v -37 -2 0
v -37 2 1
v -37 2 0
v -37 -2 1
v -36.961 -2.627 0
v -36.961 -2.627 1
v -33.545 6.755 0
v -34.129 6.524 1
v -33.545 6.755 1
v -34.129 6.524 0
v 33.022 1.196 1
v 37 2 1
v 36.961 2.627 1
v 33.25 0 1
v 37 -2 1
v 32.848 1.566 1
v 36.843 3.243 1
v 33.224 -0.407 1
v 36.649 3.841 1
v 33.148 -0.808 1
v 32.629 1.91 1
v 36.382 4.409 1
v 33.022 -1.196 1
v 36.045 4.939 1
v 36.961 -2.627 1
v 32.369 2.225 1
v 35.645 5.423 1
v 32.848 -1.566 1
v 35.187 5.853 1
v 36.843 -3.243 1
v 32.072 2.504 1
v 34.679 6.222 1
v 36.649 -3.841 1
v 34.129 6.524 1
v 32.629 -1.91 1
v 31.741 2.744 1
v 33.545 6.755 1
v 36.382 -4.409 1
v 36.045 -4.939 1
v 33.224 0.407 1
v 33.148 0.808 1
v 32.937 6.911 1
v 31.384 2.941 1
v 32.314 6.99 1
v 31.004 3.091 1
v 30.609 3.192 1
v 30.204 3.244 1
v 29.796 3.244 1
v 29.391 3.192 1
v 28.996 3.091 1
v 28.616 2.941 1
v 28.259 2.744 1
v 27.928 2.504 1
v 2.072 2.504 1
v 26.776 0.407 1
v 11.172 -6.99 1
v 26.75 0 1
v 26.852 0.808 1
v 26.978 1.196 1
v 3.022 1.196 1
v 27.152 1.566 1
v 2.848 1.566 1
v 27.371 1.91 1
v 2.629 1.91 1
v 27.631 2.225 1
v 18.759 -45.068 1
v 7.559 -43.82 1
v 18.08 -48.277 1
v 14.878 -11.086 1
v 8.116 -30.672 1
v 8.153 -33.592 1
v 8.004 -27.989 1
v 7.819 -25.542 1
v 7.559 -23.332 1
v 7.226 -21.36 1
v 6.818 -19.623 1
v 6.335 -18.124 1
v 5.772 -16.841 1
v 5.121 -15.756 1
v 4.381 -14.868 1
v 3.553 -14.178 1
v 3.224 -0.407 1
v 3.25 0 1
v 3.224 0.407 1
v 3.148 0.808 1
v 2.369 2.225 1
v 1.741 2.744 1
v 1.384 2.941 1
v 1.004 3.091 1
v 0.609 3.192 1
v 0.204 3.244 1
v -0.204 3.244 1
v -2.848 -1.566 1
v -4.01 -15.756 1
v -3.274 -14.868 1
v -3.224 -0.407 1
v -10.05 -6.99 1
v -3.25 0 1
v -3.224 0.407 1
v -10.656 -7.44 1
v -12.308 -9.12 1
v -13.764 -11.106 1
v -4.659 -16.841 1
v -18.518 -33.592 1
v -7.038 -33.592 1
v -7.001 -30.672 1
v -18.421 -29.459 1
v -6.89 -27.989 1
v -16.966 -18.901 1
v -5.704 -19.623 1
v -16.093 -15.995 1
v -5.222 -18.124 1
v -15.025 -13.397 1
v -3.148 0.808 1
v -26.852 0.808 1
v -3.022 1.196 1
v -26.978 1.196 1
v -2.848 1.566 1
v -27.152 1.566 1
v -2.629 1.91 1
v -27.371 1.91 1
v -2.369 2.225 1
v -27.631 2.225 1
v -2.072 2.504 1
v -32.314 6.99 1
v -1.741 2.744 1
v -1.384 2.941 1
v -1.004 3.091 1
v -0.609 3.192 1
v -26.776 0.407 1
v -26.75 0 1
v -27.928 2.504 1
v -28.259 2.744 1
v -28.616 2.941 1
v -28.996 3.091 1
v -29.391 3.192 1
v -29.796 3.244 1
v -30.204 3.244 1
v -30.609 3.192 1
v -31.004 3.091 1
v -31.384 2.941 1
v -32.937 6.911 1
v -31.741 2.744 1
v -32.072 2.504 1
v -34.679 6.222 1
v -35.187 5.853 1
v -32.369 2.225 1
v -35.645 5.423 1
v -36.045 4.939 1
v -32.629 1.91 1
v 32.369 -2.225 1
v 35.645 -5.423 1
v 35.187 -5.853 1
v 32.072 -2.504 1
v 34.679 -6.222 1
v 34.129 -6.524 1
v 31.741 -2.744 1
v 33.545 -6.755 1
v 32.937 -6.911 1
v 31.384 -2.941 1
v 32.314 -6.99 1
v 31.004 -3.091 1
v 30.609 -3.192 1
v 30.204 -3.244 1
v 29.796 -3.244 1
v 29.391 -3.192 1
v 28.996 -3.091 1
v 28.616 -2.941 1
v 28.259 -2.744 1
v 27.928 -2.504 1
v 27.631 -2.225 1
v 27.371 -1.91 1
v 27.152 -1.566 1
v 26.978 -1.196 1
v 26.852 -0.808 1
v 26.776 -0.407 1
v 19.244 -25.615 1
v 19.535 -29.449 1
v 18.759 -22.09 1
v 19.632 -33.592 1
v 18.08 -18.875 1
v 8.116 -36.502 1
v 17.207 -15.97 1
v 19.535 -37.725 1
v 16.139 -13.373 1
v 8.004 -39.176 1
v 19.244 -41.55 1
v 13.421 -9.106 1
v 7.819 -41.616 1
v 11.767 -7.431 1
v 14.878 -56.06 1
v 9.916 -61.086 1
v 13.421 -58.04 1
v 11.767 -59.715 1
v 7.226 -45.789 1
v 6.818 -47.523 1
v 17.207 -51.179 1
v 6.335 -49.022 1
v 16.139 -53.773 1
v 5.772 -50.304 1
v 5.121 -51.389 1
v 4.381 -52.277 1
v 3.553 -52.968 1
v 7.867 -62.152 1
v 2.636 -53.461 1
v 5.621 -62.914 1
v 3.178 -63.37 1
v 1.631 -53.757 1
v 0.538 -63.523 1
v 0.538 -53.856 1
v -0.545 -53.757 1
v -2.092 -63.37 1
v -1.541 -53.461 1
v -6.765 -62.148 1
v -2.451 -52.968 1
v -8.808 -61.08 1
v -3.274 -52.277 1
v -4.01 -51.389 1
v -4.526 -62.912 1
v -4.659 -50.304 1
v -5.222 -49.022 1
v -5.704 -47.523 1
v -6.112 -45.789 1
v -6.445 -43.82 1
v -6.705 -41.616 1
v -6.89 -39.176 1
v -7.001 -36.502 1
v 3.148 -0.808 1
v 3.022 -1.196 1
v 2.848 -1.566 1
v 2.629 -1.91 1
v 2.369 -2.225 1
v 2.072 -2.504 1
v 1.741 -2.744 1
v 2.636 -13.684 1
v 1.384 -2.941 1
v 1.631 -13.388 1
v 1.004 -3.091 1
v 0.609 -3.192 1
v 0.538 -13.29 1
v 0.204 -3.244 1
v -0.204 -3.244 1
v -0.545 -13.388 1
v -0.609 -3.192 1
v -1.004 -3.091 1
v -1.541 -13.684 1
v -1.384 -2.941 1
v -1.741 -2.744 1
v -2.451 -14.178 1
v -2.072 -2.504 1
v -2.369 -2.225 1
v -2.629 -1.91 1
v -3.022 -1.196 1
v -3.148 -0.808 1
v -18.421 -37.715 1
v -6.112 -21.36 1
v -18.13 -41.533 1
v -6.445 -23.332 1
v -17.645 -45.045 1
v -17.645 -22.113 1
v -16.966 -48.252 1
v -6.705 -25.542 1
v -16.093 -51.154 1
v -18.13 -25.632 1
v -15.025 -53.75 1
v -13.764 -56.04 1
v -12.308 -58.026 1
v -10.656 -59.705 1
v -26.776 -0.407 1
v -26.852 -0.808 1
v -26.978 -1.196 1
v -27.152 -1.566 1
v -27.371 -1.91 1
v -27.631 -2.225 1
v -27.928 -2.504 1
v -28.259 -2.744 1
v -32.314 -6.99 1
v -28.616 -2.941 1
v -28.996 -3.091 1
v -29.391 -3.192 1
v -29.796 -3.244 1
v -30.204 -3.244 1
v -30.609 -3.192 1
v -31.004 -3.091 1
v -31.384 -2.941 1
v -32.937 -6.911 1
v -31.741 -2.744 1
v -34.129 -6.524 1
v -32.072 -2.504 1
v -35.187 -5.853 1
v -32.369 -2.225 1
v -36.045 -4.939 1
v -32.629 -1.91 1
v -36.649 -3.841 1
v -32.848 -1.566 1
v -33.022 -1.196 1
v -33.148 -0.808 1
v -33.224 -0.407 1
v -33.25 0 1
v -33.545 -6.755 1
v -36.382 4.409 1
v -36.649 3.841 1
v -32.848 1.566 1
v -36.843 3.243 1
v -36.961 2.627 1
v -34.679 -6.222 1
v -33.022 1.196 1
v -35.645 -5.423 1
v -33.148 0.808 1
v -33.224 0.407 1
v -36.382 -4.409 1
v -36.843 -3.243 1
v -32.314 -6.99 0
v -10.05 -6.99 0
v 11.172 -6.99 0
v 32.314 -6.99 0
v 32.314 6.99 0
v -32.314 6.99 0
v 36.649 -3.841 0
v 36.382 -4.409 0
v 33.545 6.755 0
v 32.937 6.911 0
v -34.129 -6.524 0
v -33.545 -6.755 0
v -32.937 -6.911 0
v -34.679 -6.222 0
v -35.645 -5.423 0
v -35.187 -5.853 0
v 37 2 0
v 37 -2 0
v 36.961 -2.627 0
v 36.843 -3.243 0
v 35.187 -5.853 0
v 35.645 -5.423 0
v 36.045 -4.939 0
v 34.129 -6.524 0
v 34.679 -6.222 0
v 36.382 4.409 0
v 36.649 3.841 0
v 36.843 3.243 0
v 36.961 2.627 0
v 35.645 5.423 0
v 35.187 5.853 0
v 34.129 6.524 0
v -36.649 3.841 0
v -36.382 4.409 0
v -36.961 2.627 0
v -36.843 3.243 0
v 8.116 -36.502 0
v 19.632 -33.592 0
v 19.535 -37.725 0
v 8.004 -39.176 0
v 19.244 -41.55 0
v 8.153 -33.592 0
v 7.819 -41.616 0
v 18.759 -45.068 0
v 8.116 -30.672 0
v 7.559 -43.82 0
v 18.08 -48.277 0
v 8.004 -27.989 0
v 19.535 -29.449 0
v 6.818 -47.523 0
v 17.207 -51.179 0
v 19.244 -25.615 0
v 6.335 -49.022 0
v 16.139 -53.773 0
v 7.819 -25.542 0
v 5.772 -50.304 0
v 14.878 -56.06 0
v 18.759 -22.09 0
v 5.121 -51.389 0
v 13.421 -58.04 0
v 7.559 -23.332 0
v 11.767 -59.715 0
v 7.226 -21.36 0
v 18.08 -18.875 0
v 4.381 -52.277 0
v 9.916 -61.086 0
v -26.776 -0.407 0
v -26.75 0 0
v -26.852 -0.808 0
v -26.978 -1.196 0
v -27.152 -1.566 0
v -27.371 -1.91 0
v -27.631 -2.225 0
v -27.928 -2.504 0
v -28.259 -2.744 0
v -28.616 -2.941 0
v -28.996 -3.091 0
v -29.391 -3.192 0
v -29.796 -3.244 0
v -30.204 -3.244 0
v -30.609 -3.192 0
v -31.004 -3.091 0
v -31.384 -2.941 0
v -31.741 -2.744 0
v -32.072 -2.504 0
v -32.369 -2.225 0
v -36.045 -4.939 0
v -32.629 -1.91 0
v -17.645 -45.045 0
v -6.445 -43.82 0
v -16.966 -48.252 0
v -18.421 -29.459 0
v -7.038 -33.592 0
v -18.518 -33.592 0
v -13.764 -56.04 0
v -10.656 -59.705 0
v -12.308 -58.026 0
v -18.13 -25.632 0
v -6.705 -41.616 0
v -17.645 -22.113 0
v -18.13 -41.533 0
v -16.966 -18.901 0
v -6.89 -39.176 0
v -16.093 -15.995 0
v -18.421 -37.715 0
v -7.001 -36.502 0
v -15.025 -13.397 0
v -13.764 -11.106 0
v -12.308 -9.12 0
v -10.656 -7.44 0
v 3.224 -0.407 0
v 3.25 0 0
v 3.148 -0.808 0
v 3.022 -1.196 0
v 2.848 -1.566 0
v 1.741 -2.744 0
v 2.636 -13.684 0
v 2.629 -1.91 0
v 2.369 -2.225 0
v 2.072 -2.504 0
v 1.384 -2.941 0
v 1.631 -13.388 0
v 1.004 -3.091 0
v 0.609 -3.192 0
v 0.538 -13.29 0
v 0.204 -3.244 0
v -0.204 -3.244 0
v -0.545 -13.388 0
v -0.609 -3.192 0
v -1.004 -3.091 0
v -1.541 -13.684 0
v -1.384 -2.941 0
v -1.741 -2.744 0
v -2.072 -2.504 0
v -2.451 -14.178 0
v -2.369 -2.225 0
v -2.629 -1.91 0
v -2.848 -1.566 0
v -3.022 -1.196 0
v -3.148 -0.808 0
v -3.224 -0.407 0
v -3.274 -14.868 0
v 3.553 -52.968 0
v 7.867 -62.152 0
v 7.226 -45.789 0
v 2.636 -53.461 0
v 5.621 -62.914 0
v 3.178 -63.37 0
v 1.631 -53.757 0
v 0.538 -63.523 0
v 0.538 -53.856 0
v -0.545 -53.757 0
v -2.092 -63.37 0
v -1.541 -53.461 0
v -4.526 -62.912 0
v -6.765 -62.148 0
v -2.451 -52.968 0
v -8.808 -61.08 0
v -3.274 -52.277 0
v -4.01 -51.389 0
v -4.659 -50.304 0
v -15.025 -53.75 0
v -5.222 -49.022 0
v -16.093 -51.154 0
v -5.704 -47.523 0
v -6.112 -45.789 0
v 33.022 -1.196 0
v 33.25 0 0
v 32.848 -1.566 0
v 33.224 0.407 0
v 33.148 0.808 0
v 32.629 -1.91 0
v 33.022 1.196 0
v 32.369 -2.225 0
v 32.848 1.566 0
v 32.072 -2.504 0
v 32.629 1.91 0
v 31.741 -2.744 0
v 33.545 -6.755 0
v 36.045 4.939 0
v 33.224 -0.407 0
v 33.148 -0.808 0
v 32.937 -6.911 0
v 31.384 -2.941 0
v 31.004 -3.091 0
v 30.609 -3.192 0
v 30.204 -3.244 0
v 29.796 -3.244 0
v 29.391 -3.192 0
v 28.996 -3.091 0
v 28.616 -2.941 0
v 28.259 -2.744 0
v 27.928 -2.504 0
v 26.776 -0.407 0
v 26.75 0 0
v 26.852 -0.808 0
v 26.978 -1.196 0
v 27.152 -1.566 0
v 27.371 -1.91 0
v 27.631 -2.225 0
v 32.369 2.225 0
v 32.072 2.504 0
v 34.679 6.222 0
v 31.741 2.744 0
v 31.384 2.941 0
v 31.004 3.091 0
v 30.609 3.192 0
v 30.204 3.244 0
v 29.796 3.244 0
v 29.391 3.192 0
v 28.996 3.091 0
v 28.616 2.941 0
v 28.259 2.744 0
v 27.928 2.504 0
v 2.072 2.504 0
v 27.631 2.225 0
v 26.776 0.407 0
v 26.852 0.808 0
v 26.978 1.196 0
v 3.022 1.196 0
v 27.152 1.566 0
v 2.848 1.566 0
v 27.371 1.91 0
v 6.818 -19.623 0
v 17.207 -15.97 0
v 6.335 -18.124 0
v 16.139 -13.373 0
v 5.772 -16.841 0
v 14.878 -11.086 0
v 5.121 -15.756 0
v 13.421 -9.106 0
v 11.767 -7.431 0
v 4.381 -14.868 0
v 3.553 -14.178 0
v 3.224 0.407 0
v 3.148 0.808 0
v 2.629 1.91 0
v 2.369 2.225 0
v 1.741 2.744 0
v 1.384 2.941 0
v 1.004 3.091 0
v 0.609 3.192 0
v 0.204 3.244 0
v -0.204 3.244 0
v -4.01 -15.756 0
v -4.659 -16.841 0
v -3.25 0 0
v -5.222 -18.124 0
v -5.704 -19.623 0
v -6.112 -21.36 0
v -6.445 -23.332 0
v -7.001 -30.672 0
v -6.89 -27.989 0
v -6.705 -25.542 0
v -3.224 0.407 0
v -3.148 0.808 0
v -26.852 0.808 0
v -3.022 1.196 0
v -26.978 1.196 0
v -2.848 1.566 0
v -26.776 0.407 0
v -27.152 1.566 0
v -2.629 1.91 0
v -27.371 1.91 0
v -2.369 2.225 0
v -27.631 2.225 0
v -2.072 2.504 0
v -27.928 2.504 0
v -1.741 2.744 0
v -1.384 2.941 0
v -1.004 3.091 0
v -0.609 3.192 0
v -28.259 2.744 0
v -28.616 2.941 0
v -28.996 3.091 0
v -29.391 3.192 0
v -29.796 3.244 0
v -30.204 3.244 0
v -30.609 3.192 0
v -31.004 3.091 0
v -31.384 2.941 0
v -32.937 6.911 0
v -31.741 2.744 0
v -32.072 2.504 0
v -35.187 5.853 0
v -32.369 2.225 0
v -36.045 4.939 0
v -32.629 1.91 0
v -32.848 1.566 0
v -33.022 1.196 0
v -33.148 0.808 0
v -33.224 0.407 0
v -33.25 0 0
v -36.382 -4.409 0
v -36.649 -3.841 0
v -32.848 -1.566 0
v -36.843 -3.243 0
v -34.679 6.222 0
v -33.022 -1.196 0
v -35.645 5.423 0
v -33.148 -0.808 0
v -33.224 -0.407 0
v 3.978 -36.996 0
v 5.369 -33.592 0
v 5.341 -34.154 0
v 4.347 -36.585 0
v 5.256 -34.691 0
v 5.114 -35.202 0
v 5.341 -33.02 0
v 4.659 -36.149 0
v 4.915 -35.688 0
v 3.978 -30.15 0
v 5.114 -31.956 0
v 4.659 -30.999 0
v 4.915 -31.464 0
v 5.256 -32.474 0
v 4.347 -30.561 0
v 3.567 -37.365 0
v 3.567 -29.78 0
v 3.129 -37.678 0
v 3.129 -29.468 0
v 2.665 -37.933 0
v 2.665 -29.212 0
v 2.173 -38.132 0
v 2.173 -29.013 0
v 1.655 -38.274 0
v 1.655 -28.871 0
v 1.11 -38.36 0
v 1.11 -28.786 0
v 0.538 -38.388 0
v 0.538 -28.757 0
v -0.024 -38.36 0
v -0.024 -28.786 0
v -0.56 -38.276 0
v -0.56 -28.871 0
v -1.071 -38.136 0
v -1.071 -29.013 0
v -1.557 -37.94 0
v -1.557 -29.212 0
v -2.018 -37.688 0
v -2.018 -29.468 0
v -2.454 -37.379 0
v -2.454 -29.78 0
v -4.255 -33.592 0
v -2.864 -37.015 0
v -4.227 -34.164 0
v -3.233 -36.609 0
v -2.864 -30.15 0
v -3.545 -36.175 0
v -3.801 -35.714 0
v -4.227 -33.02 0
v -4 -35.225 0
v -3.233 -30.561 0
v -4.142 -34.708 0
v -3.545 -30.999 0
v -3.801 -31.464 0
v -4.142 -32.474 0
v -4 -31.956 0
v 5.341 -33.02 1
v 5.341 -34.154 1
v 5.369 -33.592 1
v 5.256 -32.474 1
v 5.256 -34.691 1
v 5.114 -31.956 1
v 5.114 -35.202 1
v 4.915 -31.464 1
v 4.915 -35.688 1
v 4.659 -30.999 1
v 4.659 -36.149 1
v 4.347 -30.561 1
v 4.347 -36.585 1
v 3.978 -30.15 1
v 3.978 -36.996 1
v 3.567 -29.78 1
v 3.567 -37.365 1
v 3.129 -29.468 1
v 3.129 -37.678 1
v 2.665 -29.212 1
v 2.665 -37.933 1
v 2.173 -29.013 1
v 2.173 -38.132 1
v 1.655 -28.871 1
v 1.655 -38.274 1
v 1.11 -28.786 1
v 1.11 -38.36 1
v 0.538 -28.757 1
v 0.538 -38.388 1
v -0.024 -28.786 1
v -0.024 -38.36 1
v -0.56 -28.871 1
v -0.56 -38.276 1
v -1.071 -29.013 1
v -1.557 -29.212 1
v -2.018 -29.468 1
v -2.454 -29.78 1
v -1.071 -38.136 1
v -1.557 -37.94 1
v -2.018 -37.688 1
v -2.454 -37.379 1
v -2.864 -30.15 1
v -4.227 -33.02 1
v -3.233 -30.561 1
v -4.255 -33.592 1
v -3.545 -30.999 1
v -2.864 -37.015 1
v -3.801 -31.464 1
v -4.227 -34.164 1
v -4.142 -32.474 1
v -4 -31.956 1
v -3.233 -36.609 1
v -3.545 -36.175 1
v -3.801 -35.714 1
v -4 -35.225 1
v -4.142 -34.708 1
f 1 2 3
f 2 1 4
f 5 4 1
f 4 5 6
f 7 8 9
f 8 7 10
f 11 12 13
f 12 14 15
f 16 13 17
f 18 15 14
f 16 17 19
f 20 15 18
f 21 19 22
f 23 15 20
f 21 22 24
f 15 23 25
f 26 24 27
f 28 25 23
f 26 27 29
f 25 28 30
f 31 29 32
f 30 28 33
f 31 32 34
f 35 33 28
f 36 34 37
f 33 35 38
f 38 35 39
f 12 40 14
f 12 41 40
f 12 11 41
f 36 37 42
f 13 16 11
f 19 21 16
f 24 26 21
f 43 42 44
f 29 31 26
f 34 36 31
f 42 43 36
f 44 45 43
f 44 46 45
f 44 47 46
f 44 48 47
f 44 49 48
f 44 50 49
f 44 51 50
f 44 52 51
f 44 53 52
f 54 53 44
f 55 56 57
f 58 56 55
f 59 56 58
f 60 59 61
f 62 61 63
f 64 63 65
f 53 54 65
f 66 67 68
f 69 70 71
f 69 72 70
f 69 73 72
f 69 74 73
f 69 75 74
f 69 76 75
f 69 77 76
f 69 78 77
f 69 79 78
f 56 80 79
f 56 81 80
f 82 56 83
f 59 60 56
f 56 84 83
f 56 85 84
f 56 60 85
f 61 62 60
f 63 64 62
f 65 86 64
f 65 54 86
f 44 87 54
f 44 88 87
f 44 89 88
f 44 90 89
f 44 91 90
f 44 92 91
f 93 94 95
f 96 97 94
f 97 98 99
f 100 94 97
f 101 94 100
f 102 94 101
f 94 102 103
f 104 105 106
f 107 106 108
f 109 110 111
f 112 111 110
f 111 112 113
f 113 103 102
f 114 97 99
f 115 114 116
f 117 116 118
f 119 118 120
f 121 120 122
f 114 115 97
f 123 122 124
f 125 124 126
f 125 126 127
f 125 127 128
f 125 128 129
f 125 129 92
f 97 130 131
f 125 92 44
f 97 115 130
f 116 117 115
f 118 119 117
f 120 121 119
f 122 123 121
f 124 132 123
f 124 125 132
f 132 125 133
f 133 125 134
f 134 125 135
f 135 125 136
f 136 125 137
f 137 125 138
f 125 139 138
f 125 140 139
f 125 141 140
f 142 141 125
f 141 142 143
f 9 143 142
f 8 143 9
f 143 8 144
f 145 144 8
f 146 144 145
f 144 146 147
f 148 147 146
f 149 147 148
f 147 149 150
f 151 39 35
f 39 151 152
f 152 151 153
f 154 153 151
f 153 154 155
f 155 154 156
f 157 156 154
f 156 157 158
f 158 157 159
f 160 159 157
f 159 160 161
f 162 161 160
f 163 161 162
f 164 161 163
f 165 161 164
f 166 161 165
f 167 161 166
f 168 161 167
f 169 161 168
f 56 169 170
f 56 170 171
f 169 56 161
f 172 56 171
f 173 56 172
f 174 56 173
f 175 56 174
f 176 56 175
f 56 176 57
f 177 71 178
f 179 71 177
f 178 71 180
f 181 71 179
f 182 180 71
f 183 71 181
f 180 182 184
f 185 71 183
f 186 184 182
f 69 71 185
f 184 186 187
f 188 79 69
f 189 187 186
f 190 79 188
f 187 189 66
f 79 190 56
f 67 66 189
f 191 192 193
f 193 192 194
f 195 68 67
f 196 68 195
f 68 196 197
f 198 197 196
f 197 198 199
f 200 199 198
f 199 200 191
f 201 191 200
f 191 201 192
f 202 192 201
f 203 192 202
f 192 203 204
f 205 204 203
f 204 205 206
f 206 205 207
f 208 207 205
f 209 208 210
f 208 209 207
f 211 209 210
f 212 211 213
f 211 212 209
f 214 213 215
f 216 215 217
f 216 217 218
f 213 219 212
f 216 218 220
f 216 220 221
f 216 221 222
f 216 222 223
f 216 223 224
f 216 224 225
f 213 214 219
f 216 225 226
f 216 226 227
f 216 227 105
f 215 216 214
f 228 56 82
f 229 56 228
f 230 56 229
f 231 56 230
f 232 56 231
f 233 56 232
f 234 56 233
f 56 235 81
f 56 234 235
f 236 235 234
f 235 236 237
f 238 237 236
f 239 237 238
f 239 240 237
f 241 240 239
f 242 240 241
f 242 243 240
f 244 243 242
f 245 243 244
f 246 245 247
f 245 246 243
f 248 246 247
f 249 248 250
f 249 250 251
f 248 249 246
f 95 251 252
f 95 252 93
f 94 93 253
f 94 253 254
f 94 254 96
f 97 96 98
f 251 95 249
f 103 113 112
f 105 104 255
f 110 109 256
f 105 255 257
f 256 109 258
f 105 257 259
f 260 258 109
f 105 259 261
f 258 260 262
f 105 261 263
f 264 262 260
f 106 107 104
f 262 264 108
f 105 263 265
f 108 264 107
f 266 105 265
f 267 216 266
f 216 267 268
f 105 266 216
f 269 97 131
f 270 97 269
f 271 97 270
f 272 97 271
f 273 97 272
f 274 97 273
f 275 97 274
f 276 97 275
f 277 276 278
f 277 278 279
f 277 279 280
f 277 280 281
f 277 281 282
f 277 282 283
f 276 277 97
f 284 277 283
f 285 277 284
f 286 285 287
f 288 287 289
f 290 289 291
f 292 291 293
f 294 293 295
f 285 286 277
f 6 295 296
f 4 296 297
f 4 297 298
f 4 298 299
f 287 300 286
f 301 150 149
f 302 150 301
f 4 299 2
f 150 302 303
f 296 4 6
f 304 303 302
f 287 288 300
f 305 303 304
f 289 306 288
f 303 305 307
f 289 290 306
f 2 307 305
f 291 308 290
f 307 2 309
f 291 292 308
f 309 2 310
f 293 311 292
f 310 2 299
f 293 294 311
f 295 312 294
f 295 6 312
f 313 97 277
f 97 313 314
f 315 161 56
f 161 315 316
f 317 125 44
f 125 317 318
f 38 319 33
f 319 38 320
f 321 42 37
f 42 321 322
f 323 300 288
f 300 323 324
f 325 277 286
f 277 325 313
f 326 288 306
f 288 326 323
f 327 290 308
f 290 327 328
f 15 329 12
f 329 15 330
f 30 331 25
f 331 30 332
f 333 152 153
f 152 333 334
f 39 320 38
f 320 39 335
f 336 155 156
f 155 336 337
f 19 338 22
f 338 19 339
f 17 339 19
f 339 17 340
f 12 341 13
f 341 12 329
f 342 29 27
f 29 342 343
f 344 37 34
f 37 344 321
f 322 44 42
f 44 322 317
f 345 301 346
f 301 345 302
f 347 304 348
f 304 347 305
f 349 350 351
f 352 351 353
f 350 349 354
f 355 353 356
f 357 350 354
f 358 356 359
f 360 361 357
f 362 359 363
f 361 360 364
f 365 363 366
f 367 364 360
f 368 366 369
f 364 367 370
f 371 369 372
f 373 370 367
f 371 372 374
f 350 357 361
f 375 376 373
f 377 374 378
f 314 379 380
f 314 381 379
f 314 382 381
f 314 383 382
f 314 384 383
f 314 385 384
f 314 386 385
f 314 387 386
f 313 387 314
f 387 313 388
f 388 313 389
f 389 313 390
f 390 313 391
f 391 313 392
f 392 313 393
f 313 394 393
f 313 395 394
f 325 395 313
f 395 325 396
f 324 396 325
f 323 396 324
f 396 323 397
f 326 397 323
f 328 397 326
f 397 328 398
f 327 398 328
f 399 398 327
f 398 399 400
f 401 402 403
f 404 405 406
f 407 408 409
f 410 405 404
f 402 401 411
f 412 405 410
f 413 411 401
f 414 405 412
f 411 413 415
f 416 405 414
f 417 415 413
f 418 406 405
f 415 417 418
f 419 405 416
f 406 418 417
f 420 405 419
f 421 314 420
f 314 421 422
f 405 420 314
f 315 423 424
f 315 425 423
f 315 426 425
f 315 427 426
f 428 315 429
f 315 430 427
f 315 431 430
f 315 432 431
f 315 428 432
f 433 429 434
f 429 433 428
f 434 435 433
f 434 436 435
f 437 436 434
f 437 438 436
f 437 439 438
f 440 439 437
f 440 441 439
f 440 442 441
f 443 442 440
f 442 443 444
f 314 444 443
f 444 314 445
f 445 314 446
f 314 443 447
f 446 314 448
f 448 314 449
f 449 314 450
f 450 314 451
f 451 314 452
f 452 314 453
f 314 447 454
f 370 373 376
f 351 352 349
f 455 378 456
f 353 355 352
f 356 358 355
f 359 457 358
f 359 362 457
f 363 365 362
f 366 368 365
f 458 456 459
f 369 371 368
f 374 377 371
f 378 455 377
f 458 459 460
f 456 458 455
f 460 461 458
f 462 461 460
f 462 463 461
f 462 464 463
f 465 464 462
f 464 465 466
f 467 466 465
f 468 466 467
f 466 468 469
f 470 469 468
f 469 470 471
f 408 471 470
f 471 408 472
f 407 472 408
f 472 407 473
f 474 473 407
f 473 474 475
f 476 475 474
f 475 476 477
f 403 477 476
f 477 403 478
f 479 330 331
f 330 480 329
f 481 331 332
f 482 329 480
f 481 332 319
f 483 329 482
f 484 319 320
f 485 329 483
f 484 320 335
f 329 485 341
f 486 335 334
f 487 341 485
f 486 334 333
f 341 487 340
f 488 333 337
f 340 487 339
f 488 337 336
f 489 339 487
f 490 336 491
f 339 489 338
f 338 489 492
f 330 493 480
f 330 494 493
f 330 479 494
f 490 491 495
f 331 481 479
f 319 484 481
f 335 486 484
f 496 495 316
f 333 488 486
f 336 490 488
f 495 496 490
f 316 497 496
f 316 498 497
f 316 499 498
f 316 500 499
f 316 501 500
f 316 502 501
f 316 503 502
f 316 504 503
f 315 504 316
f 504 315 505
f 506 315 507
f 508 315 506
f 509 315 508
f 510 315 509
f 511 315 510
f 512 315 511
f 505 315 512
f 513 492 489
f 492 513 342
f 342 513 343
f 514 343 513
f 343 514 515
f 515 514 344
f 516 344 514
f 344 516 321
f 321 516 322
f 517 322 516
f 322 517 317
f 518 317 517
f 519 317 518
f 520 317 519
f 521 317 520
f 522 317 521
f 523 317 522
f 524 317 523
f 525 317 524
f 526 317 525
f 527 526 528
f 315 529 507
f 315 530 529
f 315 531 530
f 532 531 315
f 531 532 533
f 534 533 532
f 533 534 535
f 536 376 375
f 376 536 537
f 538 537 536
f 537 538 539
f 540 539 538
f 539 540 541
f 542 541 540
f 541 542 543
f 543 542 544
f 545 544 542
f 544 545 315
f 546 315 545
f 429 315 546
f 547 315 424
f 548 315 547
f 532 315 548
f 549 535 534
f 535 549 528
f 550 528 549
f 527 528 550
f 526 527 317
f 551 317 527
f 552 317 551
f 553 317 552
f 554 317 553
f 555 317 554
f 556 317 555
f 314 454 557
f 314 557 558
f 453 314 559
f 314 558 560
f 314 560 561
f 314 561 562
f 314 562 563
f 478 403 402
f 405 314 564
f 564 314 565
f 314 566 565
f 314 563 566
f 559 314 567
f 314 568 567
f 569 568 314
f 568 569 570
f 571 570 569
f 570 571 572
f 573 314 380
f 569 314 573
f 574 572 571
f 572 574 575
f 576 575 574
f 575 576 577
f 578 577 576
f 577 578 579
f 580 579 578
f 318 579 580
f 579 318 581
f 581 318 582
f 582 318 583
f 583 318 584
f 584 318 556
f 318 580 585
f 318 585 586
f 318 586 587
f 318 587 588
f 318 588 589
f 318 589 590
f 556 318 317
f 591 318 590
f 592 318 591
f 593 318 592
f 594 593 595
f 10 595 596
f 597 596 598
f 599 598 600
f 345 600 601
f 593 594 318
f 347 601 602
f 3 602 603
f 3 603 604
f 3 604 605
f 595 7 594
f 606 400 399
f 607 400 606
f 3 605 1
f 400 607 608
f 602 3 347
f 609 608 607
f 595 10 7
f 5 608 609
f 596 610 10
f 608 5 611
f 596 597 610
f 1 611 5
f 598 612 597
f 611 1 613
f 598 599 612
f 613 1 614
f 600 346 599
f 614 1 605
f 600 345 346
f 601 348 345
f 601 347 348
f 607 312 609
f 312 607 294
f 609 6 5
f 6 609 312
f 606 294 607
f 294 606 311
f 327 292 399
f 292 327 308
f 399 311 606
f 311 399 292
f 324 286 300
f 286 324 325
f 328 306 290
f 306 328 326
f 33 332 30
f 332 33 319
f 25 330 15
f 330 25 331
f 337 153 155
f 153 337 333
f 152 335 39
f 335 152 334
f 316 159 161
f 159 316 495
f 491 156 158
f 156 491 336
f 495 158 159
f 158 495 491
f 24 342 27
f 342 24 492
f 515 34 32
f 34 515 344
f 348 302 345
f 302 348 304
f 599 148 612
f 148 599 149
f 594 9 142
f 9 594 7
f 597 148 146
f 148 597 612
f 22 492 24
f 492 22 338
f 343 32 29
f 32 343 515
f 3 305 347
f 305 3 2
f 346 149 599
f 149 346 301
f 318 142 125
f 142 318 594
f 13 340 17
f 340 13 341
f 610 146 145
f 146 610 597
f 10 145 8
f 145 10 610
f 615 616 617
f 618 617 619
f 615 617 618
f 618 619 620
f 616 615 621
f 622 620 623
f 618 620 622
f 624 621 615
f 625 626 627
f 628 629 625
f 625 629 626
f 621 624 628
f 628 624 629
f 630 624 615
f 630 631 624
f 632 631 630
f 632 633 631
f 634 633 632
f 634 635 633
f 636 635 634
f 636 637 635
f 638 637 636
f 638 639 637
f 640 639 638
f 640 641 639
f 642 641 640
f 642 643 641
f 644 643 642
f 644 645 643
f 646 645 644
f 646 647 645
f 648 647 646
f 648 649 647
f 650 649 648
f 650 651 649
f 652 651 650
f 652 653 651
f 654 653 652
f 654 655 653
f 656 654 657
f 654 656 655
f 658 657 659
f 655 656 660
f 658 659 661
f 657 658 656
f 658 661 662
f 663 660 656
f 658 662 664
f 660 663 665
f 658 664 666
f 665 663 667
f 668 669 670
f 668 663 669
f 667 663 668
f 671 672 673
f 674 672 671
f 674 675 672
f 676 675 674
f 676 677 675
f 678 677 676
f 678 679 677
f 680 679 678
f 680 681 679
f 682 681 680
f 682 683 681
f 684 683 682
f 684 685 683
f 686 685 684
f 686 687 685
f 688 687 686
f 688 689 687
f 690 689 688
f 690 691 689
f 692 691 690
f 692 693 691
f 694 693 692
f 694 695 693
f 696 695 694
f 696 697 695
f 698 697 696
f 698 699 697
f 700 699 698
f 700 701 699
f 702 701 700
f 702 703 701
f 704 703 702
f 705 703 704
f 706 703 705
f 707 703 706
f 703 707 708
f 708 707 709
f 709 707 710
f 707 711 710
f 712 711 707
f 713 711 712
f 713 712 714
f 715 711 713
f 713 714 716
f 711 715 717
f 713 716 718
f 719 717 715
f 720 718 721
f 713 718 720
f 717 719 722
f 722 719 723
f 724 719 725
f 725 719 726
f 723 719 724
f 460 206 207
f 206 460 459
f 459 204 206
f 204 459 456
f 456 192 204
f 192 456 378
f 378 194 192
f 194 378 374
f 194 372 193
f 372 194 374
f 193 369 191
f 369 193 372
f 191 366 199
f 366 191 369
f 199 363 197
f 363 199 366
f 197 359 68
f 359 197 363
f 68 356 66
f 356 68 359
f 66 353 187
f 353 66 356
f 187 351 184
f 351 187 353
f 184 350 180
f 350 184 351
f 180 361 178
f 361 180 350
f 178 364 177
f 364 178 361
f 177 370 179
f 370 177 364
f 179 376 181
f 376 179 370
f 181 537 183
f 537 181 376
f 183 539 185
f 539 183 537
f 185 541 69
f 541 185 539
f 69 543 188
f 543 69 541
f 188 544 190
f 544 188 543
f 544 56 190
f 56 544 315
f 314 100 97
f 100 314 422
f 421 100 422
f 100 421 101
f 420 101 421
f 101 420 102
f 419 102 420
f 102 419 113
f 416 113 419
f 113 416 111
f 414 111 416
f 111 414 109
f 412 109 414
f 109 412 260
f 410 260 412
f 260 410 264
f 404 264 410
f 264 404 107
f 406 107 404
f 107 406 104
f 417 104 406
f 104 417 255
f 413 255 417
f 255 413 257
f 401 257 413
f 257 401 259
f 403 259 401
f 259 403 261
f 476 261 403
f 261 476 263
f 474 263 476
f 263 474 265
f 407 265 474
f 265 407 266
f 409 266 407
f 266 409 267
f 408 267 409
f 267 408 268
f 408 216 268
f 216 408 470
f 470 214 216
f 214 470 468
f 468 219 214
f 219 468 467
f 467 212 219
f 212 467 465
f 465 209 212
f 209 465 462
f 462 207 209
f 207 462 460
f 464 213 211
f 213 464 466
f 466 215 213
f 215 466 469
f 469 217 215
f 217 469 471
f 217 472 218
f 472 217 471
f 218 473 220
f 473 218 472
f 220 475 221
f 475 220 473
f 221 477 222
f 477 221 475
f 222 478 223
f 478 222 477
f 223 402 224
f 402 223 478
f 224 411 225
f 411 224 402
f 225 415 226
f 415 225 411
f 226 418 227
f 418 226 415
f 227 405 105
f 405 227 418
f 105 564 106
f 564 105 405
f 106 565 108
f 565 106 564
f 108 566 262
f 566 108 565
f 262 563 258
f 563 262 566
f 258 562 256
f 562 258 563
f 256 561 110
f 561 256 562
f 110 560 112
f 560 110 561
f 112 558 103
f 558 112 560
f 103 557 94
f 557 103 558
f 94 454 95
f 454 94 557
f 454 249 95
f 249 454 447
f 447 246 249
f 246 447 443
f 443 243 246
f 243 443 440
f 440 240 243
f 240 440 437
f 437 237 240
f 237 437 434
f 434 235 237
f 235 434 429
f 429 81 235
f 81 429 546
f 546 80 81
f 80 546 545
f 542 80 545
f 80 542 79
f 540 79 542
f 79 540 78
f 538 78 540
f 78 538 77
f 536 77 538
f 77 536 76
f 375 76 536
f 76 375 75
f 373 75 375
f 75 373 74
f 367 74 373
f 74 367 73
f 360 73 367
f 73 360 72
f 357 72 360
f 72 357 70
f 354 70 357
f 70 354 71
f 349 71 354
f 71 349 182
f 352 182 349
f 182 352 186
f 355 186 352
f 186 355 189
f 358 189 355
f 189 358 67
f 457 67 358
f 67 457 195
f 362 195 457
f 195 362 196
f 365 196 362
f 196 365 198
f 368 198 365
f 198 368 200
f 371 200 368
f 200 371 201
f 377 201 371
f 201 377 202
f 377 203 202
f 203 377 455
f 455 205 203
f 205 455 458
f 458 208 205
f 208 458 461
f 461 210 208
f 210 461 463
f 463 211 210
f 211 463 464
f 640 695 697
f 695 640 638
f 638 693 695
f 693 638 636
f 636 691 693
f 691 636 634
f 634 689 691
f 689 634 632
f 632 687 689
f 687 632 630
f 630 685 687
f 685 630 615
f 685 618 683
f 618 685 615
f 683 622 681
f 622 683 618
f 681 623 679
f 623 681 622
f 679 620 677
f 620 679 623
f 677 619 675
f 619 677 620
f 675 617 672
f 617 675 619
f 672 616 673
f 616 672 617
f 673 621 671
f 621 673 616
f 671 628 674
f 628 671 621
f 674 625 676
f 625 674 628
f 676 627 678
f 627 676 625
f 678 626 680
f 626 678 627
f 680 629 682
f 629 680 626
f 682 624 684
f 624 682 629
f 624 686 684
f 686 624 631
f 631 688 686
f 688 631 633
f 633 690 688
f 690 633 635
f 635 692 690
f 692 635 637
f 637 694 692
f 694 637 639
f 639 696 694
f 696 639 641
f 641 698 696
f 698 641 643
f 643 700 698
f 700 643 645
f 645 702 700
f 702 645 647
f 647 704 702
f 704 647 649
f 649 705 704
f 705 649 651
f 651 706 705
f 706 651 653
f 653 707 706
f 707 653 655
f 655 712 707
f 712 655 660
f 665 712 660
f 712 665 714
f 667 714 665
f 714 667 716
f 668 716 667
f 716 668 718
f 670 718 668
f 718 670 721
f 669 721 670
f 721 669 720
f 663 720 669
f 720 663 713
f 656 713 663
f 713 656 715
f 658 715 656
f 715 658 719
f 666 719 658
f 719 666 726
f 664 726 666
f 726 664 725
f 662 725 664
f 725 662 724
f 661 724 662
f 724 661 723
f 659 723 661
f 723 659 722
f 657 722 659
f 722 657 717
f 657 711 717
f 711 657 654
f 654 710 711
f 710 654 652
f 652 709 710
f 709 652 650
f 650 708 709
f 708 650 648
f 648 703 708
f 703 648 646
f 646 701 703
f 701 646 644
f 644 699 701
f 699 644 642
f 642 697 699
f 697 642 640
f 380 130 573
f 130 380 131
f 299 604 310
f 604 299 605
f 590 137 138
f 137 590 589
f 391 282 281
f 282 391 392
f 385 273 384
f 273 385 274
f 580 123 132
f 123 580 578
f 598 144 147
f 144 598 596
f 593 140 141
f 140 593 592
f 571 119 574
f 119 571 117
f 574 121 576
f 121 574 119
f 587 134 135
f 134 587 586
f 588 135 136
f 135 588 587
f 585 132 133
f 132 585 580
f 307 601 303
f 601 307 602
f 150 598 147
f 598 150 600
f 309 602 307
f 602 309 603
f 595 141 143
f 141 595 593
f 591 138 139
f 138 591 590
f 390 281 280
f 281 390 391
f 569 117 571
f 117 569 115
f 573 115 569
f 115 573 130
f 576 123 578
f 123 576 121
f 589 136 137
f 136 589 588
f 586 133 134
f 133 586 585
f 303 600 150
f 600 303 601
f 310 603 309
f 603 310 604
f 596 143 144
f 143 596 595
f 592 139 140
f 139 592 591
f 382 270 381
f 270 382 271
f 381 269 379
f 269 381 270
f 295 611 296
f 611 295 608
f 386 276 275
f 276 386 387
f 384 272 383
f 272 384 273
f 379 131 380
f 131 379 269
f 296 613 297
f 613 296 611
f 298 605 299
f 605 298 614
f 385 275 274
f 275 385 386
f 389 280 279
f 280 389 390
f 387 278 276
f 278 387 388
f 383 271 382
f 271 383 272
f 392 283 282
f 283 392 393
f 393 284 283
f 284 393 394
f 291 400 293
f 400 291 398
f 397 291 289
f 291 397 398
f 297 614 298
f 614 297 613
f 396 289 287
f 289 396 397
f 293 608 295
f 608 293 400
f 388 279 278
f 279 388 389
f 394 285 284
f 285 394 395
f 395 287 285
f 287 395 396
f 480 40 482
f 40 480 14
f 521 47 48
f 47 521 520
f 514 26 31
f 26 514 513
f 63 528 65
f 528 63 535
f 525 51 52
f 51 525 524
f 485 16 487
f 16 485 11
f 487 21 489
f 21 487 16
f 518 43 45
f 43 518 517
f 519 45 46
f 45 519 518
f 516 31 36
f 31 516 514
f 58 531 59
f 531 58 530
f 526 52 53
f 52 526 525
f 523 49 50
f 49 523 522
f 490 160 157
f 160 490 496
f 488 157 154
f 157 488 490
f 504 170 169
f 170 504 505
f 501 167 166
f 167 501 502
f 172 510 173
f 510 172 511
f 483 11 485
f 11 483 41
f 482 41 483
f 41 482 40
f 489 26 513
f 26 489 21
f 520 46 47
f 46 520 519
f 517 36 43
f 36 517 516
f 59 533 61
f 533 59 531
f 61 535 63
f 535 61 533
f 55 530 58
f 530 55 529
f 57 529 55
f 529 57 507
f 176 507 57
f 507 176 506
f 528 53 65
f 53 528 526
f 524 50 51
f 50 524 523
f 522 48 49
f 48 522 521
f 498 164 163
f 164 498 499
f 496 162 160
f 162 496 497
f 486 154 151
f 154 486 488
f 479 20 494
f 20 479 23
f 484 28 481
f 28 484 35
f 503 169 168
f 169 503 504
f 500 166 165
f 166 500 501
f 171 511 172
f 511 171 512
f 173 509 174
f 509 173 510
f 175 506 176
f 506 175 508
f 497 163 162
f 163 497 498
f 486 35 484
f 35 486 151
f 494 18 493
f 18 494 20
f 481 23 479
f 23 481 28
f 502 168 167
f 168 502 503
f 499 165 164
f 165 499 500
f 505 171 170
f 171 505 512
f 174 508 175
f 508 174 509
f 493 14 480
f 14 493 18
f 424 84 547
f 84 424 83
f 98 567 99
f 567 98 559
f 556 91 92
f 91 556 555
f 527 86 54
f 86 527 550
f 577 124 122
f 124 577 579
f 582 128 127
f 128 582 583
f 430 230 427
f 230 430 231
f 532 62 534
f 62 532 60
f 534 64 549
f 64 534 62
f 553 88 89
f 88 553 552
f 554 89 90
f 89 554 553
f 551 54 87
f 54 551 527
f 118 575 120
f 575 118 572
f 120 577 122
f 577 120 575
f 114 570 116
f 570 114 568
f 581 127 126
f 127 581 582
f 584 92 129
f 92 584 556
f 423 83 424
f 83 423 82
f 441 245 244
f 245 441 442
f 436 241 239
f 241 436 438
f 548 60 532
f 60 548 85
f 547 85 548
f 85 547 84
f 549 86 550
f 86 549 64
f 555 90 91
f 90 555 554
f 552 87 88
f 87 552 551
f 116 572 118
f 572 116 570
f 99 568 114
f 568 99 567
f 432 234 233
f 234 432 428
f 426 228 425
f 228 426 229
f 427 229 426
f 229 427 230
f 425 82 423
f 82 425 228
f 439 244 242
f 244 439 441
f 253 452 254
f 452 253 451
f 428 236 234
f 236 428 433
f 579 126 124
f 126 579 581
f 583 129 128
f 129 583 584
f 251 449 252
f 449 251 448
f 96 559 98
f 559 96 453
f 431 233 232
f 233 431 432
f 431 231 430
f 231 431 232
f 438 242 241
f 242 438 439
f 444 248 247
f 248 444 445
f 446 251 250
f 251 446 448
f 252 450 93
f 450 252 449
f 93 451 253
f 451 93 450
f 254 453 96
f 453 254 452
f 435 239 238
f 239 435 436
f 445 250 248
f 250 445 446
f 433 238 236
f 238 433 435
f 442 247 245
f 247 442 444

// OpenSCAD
$fn = 50;


difference() {
	union() {
		translate(v = [0, 0, 0]) {
			rotate(a = [0, 0, 0]) {
				hull() {
					translate(v = [-32.0000000000, 2.0000000000, 0]) {
						rotate(a = [0, 0, 0]) {
							translate(v = [0, 0, 0]) {
								rotate(a = [0, 0, 0]) {
									cylinder(h = 1, r = 5);
								}
							}
						}
					}
					translate(v = [32.0000000000, 2.0000000000, 0]) {
						rotate(a = [0, 0, 0]) {
							translate(v = [0, 0, 0]) {
								rotate(a = [0, 0, 0]) {
									cylinder(h = 1, r = 5);
								}
							}
						}
					}
					translate(v = [-32.0000000000, -2.0000000000, 0]) {
						rotate(a = [0, 0, 0]) {
							translate(v = [0, 0, 0]) {
								rotate(a = [0, 0, 0]) {
									cylinder(h = 1, r = 5);
								}
							}
						}
					}
					translate(v = [32.0000000000, -2.0000000000, 0]) {
						rotate(a = [0, 0, 0]) {
							translate(v = [0, 0, 0]) {
								rotate(a = [0, 0, 0]) {
									cylinder(h = 1, r = 5);
								}
							}
						}
					}
				}
			}
		}
		translate(v = [0, -5, 0]) {
			rotate(a = [0, 0, 0]) {
				linear_extrude(height = 1) {
					text(font = "DejaVu Sans Mono:style=Bold", halign = "center", size = 57.0000000000, text = "0", valign = "top");
				}
			}
		}
	}
	union() {
		translate(v = [-30.0000000000, 0.0000000000, -125.0000000000]) {
			rotate(a = [0, 0, 0]) {
				cylinder(h = 250, r = 3.2500000000);
			}
		}
		translate(v = [30.0000000000, 0.0000000000, -125.0000000000]) {
			rotate(a = [0, 0, 0]) {
				cylinder(h = 250, r = 3.2500000000);
			}
		}
		translate(v = [30.0000000000, 0.0000000000, -125.0000000000]) {
			rotate(a = [0, 0, 0]) {
				cylinder(h = 250, r = 3.2500000000);
			}
		}
		translate(v = [0, 0, -125.0000000000]) {
			rotate(a = [0, 0, 0]) {
				cylinder(h = 250, r = 3.2500000000);
			}
		}
	}
}
